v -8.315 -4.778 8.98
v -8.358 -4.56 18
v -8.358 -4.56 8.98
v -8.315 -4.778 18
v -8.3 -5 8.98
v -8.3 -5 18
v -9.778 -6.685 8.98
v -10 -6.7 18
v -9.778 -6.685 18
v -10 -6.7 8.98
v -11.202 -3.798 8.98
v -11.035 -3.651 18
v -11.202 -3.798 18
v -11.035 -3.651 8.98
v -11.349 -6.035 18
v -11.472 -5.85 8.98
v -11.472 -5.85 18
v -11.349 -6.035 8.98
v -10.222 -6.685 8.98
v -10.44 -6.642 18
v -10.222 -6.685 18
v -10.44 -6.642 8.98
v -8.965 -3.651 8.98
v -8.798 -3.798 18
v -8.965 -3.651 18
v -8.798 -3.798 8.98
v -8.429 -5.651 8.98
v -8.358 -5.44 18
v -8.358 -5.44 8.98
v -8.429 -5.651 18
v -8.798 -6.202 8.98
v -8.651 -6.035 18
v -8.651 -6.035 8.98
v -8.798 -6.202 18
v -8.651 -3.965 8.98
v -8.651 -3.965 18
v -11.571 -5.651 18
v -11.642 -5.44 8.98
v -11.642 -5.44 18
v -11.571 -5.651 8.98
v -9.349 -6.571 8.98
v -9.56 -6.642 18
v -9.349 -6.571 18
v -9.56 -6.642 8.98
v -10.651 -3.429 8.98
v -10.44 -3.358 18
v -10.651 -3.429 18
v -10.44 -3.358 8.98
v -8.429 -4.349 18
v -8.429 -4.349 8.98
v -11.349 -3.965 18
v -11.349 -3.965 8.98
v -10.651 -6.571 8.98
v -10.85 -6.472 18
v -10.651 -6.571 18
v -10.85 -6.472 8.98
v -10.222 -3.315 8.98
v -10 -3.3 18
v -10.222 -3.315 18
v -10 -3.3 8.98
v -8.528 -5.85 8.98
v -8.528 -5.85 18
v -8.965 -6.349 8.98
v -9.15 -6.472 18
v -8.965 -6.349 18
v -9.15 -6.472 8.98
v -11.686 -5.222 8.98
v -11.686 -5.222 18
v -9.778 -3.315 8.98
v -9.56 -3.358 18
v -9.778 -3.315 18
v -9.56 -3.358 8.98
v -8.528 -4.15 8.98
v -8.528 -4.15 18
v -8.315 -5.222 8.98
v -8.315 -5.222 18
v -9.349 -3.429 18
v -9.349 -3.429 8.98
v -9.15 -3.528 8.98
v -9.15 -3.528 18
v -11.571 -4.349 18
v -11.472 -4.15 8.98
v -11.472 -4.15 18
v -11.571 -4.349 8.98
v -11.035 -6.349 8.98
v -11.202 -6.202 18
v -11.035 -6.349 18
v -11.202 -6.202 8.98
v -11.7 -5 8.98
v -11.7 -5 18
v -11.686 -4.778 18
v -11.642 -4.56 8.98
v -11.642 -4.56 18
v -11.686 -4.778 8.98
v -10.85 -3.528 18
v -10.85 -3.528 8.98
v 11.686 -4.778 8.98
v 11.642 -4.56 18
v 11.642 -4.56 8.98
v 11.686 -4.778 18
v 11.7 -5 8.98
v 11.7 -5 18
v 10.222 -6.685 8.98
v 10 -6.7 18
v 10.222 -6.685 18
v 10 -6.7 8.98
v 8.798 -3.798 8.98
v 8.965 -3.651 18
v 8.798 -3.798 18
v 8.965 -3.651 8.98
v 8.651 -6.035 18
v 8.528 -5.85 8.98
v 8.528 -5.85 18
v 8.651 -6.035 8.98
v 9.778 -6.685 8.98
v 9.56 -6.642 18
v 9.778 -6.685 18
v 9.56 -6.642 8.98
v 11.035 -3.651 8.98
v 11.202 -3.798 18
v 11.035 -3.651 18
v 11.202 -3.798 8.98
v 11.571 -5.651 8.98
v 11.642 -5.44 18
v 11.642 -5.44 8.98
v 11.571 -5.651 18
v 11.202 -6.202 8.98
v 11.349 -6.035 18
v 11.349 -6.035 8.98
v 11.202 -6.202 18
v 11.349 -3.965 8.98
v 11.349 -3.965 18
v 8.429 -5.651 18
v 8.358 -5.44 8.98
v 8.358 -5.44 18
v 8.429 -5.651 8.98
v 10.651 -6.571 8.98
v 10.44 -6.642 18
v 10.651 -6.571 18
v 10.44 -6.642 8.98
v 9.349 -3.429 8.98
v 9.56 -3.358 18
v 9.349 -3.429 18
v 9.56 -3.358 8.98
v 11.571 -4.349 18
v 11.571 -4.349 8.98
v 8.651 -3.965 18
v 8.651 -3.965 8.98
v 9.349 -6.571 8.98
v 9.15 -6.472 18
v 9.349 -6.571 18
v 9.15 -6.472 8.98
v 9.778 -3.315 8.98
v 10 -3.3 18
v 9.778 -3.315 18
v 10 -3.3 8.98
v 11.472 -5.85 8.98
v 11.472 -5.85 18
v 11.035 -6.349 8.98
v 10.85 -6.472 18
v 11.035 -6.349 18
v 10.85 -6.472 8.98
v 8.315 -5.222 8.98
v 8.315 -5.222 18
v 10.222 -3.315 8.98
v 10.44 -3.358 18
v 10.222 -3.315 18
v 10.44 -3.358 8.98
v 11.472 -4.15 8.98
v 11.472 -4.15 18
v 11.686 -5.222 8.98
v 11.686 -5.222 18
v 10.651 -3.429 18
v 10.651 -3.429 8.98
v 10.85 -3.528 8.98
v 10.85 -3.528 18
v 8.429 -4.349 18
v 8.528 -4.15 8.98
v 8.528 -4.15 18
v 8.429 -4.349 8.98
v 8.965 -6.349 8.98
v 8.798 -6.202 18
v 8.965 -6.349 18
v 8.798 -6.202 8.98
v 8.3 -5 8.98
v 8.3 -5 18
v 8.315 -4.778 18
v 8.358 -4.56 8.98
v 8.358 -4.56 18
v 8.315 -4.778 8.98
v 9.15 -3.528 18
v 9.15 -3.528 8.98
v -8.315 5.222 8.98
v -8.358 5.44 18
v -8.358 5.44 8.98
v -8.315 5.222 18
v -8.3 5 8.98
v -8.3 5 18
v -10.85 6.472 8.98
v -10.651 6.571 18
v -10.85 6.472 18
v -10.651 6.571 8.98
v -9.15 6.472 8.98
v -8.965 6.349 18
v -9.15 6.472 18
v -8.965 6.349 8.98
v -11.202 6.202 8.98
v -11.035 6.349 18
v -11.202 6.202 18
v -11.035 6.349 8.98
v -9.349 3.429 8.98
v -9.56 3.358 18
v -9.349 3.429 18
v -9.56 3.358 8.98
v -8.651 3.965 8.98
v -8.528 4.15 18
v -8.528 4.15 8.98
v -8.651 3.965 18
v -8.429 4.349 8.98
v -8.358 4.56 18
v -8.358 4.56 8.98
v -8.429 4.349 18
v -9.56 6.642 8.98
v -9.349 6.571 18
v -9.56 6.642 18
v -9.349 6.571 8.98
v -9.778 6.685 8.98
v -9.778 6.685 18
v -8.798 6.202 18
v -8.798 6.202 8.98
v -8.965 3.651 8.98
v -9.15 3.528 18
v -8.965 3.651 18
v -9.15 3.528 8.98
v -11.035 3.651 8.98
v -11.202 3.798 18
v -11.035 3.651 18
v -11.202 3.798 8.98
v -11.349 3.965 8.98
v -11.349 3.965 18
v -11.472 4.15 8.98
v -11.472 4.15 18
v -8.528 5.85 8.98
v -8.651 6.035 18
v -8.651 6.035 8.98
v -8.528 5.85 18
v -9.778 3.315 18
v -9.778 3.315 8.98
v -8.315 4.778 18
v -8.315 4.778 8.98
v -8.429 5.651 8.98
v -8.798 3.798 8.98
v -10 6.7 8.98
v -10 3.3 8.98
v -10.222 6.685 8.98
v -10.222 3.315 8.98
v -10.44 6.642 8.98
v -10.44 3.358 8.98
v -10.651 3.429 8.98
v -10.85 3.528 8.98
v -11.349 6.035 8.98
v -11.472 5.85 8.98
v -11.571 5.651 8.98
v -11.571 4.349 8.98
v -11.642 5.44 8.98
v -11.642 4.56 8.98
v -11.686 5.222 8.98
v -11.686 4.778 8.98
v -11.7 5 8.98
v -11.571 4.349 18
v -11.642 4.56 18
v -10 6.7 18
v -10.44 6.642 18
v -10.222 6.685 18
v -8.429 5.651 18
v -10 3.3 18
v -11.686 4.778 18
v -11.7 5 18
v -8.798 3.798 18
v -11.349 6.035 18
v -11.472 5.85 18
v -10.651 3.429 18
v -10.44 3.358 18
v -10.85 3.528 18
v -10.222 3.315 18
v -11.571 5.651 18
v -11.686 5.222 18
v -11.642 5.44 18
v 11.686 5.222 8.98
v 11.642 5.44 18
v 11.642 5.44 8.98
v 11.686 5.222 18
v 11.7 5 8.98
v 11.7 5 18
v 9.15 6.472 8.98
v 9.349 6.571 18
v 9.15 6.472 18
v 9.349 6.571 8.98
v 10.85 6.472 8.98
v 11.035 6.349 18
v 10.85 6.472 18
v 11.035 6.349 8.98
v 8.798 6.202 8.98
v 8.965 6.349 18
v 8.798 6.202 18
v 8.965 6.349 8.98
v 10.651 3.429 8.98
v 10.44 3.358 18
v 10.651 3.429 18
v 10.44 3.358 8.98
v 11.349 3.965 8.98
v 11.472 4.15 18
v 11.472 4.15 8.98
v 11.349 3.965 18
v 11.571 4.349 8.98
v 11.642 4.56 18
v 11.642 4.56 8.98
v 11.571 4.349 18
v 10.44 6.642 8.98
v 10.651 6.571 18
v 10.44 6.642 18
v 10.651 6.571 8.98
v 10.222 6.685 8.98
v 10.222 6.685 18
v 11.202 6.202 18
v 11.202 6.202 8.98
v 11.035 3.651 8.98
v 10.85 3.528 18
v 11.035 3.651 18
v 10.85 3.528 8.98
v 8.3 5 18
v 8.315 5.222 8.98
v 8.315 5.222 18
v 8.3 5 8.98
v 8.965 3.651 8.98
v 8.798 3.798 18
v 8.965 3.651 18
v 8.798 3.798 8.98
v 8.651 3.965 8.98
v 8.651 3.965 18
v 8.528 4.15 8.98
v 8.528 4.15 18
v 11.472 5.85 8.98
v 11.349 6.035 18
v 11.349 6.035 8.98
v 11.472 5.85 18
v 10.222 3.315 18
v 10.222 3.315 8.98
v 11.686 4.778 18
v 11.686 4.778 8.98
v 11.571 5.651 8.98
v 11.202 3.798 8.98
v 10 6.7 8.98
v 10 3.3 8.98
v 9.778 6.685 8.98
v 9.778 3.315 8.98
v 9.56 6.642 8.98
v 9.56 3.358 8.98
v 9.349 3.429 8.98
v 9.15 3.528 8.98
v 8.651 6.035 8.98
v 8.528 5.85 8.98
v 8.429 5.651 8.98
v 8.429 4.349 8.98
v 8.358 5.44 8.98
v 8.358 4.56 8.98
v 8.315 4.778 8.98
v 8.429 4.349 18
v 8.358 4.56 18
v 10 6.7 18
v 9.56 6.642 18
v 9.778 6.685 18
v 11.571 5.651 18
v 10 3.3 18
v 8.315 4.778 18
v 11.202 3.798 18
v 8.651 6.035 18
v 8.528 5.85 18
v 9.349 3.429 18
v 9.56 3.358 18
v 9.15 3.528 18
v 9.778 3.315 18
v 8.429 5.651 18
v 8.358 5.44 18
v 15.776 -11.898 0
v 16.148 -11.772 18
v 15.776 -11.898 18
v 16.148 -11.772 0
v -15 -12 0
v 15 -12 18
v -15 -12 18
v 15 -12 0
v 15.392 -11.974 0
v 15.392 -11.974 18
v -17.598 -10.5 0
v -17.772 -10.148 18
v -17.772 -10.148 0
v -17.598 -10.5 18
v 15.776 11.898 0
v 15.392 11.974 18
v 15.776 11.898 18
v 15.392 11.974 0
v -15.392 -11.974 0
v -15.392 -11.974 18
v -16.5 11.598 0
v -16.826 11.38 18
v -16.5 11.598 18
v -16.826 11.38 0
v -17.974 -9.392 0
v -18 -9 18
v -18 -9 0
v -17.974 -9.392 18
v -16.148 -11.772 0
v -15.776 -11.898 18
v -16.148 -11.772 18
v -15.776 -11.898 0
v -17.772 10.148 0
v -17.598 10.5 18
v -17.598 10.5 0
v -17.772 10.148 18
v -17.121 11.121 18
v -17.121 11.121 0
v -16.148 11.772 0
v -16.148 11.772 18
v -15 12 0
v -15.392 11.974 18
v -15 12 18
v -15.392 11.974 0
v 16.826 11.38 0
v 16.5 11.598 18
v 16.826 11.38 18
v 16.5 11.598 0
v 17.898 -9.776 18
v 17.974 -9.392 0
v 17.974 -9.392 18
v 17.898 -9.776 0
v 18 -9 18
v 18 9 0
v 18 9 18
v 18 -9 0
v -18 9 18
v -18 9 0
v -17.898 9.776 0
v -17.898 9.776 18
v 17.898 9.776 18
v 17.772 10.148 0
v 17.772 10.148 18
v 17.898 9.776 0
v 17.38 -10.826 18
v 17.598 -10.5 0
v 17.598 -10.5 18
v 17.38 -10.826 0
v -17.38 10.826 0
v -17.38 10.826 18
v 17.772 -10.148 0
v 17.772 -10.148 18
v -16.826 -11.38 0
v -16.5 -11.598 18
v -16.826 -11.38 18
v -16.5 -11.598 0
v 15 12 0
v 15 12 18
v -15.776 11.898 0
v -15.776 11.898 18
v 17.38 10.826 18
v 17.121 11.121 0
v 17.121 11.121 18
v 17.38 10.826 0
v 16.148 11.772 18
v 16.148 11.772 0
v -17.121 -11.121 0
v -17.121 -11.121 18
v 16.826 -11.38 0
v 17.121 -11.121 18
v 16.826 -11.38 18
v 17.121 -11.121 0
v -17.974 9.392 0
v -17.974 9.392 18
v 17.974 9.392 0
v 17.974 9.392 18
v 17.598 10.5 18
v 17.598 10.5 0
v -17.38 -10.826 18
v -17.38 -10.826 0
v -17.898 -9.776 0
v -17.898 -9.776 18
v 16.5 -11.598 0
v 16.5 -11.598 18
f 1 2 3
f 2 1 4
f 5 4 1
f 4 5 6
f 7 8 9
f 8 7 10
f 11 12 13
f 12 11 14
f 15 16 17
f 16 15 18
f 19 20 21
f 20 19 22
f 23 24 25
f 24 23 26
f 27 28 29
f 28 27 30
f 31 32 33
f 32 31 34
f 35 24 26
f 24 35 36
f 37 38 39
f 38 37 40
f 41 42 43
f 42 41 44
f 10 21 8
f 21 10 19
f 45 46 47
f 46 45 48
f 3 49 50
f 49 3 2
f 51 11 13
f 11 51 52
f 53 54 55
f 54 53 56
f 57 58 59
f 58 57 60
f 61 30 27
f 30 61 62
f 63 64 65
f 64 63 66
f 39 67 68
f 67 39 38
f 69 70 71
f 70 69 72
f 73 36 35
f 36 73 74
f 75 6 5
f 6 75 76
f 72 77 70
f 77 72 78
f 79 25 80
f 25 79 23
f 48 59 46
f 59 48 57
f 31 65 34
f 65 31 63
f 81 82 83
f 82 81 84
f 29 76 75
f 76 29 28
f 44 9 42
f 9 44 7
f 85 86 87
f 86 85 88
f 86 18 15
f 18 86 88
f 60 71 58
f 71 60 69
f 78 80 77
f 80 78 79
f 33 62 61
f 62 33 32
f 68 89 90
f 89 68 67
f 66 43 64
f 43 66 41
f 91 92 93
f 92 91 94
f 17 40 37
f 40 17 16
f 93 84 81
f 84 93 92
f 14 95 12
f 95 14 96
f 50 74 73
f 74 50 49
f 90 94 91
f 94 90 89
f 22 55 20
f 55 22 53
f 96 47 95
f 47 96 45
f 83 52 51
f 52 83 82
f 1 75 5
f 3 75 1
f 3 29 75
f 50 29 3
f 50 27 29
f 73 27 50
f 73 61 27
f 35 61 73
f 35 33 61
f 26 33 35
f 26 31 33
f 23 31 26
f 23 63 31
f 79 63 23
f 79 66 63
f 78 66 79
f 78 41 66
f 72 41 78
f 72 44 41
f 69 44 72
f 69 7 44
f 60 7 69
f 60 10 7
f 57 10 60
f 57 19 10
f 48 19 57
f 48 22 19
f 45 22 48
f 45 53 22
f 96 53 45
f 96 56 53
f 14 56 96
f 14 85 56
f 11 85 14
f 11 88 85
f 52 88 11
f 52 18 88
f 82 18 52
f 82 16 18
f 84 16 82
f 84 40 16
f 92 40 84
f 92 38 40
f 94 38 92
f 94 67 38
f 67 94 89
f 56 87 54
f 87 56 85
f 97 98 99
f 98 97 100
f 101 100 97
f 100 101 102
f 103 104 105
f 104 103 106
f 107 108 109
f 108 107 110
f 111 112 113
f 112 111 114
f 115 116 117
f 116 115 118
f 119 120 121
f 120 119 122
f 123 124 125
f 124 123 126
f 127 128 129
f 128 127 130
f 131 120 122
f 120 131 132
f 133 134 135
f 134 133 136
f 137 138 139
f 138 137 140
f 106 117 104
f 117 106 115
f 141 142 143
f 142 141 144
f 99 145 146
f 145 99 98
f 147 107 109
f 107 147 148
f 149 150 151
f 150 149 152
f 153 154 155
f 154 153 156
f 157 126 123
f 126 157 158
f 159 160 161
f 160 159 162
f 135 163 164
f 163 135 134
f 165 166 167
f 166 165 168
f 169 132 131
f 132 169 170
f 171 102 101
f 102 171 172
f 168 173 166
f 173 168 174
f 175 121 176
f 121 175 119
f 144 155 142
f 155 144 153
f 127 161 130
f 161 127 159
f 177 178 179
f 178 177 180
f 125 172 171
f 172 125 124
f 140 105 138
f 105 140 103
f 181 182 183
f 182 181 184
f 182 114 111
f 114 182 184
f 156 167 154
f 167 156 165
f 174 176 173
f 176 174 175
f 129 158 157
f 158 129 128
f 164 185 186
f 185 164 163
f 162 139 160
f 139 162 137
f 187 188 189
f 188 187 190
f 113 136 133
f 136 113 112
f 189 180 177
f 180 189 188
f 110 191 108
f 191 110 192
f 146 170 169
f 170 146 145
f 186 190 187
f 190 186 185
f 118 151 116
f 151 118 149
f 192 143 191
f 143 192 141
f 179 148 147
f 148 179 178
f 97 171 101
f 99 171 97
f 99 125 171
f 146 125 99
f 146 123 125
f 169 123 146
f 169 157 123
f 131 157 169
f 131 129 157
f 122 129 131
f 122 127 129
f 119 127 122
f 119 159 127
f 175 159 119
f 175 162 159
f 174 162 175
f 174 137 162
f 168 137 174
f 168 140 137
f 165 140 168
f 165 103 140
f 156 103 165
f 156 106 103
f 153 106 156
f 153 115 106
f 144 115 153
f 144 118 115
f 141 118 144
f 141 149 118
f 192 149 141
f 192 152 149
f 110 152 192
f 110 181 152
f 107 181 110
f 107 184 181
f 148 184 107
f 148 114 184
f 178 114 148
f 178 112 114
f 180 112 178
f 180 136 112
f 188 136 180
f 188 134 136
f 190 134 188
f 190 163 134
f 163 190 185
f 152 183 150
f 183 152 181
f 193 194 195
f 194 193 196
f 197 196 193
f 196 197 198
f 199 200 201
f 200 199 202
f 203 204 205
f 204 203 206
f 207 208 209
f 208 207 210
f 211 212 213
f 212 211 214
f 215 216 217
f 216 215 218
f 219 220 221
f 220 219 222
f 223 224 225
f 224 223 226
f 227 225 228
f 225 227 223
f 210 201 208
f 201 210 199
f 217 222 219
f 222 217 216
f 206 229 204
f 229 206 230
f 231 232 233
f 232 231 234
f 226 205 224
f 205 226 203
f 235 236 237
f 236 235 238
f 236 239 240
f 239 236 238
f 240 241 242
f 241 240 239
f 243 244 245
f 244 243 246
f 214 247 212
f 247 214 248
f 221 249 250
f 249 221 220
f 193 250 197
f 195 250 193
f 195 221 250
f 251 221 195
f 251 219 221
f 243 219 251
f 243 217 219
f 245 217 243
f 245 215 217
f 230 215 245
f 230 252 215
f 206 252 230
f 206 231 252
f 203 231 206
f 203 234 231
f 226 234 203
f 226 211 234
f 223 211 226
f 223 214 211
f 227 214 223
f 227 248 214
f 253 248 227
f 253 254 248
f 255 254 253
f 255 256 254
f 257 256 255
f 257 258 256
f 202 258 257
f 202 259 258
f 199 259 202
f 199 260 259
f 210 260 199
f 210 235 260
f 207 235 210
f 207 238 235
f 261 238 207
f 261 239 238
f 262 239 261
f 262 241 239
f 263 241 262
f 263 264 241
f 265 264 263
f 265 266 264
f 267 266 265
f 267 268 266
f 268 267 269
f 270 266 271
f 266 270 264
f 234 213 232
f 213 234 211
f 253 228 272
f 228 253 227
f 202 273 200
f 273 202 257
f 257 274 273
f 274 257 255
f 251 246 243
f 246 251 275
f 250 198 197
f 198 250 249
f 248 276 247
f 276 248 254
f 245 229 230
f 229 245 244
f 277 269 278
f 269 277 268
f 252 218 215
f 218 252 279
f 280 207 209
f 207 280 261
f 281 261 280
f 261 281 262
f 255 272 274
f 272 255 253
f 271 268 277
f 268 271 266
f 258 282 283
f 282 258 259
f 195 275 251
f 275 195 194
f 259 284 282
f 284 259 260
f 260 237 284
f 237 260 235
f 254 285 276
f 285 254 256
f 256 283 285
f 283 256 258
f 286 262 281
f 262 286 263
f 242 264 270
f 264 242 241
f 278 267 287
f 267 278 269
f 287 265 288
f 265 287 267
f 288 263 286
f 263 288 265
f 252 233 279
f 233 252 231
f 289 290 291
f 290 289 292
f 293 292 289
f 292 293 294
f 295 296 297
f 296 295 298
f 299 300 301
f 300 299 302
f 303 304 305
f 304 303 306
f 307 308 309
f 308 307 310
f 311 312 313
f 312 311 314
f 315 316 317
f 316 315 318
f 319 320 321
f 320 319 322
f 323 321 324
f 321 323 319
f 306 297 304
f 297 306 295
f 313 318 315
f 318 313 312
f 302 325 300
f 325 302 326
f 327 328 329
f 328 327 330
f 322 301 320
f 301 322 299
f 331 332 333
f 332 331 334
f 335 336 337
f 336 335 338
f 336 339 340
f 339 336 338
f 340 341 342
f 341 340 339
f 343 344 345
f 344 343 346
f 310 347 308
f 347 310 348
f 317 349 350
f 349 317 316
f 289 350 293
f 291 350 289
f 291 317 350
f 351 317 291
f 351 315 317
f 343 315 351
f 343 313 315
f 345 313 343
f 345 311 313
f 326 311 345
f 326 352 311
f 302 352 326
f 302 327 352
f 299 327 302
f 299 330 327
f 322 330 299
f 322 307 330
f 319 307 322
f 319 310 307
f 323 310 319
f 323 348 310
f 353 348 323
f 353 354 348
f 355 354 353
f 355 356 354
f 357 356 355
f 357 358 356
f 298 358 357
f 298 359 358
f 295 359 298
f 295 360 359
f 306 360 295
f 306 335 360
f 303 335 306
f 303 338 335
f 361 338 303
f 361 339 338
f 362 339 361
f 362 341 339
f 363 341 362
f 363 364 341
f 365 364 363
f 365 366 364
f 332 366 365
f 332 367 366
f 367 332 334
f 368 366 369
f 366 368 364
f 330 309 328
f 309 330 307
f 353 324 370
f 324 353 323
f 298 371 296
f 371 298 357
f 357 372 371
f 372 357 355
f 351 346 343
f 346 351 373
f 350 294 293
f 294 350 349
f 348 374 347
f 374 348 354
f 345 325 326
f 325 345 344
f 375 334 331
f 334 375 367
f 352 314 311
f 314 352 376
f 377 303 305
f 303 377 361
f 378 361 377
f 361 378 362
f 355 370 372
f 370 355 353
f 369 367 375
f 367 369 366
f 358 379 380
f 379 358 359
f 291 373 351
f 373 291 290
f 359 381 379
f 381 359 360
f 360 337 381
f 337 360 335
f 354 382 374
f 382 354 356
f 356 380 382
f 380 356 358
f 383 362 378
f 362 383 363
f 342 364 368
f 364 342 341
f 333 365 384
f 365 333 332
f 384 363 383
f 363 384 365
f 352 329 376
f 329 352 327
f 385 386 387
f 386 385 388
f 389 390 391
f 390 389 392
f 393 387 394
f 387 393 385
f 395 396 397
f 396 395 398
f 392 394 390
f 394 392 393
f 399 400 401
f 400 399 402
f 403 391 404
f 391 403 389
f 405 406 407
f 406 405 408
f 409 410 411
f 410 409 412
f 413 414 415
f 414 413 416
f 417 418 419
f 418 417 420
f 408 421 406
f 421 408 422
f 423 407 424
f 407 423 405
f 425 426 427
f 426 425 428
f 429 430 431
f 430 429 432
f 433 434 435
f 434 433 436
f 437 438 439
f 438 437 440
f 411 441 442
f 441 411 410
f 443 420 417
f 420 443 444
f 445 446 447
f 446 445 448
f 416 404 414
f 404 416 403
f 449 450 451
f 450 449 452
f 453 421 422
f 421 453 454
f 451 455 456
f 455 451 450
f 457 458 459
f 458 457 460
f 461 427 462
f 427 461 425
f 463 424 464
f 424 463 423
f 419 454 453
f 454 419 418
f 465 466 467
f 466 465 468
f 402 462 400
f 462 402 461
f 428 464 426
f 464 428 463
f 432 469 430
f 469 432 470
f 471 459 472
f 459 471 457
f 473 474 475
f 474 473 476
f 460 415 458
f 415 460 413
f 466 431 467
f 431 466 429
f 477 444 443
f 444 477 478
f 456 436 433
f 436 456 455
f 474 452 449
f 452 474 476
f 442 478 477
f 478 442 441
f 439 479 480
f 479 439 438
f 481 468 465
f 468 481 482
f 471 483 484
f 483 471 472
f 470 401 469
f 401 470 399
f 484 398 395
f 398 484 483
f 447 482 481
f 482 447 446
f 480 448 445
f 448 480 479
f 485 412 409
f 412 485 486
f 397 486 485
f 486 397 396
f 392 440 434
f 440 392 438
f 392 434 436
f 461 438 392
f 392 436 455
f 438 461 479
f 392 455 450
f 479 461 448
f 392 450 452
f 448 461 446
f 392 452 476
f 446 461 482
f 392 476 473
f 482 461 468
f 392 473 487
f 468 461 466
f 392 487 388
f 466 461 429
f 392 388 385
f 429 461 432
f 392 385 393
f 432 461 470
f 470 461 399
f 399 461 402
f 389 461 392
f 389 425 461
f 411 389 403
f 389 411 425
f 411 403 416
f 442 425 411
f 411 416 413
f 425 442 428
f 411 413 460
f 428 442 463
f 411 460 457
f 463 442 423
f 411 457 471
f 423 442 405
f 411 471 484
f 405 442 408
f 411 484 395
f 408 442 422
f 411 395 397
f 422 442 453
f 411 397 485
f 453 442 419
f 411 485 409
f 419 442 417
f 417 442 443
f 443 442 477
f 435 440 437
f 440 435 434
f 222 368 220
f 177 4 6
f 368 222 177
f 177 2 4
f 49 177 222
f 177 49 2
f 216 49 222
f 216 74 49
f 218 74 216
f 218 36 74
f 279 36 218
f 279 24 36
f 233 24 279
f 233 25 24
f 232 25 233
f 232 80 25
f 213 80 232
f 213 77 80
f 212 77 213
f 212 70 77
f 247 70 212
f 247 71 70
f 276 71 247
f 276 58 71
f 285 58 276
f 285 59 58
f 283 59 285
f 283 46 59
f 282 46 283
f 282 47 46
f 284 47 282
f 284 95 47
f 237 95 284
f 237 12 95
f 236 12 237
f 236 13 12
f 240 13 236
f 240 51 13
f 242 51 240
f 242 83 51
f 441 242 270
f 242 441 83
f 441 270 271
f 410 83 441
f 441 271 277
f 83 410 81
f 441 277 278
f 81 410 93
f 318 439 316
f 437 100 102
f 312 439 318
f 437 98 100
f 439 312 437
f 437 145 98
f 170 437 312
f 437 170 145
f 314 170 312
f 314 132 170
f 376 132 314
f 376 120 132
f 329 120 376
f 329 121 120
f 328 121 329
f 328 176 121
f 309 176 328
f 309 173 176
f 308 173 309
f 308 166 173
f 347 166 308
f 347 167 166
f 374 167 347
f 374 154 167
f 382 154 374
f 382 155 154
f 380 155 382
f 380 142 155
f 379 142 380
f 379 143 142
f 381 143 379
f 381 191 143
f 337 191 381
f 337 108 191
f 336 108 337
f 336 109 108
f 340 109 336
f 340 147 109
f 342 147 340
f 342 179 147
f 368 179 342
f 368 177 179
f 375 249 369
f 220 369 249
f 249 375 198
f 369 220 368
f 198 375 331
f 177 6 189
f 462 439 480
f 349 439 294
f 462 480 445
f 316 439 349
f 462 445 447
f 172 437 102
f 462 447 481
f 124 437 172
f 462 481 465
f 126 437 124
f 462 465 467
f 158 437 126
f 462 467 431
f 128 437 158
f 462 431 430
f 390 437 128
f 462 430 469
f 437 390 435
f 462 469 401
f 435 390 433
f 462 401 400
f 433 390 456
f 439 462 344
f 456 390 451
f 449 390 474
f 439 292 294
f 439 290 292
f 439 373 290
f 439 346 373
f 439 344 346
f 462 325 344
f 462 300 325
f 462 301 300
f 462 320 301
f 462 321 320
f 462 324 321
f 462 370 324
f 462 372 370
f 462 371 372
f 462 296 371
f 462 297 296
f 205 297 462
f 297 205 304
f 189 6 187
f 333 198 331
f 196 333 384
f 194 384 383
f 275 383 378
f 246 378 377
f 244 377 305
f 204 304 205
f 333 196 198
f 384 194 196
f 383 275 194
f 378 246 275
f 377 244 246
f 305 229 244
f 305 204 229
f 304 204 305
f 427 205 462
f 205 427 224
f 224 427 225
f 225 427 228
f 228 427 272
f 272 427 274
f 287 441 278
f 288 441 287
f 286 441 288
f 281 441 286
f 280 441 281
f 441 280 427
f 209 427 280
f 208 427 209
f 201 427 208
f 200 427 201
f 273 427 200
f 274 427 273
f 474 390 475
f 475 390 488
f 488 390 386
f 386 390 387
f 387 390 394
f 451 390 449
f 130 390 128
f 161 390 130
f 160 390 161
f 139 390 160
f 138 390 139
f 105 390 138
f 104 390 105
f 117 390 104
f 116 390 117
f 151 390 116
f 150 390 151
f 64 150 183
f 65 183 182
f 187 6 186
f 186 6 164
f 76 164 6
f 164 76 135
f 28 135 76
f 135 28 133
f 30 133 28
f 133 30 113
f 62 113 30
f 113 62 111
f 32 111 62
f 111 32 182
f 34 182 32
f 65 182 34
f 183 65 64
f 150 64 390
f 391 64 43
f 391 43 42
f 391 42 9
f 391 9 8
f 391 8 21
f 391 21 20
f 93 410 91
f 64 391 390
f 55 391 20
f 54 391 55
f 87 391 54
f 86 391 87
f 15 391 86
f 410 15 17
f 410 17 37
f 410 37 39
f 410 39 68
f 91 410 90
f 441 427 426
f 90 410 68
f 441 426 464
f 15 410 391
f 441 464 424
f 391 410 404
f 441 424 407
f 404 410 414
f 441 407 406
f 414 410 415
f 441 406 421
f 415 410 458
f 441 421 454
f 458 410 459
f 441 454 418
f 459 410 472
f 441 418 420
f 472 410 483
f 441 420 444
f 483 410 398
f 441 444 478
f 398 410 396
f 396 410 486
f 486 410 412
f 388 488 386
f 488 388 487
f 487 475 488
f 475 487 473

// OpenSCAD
PART = "lower_hinge_block_right";
include <../fielddeck.scad>;
